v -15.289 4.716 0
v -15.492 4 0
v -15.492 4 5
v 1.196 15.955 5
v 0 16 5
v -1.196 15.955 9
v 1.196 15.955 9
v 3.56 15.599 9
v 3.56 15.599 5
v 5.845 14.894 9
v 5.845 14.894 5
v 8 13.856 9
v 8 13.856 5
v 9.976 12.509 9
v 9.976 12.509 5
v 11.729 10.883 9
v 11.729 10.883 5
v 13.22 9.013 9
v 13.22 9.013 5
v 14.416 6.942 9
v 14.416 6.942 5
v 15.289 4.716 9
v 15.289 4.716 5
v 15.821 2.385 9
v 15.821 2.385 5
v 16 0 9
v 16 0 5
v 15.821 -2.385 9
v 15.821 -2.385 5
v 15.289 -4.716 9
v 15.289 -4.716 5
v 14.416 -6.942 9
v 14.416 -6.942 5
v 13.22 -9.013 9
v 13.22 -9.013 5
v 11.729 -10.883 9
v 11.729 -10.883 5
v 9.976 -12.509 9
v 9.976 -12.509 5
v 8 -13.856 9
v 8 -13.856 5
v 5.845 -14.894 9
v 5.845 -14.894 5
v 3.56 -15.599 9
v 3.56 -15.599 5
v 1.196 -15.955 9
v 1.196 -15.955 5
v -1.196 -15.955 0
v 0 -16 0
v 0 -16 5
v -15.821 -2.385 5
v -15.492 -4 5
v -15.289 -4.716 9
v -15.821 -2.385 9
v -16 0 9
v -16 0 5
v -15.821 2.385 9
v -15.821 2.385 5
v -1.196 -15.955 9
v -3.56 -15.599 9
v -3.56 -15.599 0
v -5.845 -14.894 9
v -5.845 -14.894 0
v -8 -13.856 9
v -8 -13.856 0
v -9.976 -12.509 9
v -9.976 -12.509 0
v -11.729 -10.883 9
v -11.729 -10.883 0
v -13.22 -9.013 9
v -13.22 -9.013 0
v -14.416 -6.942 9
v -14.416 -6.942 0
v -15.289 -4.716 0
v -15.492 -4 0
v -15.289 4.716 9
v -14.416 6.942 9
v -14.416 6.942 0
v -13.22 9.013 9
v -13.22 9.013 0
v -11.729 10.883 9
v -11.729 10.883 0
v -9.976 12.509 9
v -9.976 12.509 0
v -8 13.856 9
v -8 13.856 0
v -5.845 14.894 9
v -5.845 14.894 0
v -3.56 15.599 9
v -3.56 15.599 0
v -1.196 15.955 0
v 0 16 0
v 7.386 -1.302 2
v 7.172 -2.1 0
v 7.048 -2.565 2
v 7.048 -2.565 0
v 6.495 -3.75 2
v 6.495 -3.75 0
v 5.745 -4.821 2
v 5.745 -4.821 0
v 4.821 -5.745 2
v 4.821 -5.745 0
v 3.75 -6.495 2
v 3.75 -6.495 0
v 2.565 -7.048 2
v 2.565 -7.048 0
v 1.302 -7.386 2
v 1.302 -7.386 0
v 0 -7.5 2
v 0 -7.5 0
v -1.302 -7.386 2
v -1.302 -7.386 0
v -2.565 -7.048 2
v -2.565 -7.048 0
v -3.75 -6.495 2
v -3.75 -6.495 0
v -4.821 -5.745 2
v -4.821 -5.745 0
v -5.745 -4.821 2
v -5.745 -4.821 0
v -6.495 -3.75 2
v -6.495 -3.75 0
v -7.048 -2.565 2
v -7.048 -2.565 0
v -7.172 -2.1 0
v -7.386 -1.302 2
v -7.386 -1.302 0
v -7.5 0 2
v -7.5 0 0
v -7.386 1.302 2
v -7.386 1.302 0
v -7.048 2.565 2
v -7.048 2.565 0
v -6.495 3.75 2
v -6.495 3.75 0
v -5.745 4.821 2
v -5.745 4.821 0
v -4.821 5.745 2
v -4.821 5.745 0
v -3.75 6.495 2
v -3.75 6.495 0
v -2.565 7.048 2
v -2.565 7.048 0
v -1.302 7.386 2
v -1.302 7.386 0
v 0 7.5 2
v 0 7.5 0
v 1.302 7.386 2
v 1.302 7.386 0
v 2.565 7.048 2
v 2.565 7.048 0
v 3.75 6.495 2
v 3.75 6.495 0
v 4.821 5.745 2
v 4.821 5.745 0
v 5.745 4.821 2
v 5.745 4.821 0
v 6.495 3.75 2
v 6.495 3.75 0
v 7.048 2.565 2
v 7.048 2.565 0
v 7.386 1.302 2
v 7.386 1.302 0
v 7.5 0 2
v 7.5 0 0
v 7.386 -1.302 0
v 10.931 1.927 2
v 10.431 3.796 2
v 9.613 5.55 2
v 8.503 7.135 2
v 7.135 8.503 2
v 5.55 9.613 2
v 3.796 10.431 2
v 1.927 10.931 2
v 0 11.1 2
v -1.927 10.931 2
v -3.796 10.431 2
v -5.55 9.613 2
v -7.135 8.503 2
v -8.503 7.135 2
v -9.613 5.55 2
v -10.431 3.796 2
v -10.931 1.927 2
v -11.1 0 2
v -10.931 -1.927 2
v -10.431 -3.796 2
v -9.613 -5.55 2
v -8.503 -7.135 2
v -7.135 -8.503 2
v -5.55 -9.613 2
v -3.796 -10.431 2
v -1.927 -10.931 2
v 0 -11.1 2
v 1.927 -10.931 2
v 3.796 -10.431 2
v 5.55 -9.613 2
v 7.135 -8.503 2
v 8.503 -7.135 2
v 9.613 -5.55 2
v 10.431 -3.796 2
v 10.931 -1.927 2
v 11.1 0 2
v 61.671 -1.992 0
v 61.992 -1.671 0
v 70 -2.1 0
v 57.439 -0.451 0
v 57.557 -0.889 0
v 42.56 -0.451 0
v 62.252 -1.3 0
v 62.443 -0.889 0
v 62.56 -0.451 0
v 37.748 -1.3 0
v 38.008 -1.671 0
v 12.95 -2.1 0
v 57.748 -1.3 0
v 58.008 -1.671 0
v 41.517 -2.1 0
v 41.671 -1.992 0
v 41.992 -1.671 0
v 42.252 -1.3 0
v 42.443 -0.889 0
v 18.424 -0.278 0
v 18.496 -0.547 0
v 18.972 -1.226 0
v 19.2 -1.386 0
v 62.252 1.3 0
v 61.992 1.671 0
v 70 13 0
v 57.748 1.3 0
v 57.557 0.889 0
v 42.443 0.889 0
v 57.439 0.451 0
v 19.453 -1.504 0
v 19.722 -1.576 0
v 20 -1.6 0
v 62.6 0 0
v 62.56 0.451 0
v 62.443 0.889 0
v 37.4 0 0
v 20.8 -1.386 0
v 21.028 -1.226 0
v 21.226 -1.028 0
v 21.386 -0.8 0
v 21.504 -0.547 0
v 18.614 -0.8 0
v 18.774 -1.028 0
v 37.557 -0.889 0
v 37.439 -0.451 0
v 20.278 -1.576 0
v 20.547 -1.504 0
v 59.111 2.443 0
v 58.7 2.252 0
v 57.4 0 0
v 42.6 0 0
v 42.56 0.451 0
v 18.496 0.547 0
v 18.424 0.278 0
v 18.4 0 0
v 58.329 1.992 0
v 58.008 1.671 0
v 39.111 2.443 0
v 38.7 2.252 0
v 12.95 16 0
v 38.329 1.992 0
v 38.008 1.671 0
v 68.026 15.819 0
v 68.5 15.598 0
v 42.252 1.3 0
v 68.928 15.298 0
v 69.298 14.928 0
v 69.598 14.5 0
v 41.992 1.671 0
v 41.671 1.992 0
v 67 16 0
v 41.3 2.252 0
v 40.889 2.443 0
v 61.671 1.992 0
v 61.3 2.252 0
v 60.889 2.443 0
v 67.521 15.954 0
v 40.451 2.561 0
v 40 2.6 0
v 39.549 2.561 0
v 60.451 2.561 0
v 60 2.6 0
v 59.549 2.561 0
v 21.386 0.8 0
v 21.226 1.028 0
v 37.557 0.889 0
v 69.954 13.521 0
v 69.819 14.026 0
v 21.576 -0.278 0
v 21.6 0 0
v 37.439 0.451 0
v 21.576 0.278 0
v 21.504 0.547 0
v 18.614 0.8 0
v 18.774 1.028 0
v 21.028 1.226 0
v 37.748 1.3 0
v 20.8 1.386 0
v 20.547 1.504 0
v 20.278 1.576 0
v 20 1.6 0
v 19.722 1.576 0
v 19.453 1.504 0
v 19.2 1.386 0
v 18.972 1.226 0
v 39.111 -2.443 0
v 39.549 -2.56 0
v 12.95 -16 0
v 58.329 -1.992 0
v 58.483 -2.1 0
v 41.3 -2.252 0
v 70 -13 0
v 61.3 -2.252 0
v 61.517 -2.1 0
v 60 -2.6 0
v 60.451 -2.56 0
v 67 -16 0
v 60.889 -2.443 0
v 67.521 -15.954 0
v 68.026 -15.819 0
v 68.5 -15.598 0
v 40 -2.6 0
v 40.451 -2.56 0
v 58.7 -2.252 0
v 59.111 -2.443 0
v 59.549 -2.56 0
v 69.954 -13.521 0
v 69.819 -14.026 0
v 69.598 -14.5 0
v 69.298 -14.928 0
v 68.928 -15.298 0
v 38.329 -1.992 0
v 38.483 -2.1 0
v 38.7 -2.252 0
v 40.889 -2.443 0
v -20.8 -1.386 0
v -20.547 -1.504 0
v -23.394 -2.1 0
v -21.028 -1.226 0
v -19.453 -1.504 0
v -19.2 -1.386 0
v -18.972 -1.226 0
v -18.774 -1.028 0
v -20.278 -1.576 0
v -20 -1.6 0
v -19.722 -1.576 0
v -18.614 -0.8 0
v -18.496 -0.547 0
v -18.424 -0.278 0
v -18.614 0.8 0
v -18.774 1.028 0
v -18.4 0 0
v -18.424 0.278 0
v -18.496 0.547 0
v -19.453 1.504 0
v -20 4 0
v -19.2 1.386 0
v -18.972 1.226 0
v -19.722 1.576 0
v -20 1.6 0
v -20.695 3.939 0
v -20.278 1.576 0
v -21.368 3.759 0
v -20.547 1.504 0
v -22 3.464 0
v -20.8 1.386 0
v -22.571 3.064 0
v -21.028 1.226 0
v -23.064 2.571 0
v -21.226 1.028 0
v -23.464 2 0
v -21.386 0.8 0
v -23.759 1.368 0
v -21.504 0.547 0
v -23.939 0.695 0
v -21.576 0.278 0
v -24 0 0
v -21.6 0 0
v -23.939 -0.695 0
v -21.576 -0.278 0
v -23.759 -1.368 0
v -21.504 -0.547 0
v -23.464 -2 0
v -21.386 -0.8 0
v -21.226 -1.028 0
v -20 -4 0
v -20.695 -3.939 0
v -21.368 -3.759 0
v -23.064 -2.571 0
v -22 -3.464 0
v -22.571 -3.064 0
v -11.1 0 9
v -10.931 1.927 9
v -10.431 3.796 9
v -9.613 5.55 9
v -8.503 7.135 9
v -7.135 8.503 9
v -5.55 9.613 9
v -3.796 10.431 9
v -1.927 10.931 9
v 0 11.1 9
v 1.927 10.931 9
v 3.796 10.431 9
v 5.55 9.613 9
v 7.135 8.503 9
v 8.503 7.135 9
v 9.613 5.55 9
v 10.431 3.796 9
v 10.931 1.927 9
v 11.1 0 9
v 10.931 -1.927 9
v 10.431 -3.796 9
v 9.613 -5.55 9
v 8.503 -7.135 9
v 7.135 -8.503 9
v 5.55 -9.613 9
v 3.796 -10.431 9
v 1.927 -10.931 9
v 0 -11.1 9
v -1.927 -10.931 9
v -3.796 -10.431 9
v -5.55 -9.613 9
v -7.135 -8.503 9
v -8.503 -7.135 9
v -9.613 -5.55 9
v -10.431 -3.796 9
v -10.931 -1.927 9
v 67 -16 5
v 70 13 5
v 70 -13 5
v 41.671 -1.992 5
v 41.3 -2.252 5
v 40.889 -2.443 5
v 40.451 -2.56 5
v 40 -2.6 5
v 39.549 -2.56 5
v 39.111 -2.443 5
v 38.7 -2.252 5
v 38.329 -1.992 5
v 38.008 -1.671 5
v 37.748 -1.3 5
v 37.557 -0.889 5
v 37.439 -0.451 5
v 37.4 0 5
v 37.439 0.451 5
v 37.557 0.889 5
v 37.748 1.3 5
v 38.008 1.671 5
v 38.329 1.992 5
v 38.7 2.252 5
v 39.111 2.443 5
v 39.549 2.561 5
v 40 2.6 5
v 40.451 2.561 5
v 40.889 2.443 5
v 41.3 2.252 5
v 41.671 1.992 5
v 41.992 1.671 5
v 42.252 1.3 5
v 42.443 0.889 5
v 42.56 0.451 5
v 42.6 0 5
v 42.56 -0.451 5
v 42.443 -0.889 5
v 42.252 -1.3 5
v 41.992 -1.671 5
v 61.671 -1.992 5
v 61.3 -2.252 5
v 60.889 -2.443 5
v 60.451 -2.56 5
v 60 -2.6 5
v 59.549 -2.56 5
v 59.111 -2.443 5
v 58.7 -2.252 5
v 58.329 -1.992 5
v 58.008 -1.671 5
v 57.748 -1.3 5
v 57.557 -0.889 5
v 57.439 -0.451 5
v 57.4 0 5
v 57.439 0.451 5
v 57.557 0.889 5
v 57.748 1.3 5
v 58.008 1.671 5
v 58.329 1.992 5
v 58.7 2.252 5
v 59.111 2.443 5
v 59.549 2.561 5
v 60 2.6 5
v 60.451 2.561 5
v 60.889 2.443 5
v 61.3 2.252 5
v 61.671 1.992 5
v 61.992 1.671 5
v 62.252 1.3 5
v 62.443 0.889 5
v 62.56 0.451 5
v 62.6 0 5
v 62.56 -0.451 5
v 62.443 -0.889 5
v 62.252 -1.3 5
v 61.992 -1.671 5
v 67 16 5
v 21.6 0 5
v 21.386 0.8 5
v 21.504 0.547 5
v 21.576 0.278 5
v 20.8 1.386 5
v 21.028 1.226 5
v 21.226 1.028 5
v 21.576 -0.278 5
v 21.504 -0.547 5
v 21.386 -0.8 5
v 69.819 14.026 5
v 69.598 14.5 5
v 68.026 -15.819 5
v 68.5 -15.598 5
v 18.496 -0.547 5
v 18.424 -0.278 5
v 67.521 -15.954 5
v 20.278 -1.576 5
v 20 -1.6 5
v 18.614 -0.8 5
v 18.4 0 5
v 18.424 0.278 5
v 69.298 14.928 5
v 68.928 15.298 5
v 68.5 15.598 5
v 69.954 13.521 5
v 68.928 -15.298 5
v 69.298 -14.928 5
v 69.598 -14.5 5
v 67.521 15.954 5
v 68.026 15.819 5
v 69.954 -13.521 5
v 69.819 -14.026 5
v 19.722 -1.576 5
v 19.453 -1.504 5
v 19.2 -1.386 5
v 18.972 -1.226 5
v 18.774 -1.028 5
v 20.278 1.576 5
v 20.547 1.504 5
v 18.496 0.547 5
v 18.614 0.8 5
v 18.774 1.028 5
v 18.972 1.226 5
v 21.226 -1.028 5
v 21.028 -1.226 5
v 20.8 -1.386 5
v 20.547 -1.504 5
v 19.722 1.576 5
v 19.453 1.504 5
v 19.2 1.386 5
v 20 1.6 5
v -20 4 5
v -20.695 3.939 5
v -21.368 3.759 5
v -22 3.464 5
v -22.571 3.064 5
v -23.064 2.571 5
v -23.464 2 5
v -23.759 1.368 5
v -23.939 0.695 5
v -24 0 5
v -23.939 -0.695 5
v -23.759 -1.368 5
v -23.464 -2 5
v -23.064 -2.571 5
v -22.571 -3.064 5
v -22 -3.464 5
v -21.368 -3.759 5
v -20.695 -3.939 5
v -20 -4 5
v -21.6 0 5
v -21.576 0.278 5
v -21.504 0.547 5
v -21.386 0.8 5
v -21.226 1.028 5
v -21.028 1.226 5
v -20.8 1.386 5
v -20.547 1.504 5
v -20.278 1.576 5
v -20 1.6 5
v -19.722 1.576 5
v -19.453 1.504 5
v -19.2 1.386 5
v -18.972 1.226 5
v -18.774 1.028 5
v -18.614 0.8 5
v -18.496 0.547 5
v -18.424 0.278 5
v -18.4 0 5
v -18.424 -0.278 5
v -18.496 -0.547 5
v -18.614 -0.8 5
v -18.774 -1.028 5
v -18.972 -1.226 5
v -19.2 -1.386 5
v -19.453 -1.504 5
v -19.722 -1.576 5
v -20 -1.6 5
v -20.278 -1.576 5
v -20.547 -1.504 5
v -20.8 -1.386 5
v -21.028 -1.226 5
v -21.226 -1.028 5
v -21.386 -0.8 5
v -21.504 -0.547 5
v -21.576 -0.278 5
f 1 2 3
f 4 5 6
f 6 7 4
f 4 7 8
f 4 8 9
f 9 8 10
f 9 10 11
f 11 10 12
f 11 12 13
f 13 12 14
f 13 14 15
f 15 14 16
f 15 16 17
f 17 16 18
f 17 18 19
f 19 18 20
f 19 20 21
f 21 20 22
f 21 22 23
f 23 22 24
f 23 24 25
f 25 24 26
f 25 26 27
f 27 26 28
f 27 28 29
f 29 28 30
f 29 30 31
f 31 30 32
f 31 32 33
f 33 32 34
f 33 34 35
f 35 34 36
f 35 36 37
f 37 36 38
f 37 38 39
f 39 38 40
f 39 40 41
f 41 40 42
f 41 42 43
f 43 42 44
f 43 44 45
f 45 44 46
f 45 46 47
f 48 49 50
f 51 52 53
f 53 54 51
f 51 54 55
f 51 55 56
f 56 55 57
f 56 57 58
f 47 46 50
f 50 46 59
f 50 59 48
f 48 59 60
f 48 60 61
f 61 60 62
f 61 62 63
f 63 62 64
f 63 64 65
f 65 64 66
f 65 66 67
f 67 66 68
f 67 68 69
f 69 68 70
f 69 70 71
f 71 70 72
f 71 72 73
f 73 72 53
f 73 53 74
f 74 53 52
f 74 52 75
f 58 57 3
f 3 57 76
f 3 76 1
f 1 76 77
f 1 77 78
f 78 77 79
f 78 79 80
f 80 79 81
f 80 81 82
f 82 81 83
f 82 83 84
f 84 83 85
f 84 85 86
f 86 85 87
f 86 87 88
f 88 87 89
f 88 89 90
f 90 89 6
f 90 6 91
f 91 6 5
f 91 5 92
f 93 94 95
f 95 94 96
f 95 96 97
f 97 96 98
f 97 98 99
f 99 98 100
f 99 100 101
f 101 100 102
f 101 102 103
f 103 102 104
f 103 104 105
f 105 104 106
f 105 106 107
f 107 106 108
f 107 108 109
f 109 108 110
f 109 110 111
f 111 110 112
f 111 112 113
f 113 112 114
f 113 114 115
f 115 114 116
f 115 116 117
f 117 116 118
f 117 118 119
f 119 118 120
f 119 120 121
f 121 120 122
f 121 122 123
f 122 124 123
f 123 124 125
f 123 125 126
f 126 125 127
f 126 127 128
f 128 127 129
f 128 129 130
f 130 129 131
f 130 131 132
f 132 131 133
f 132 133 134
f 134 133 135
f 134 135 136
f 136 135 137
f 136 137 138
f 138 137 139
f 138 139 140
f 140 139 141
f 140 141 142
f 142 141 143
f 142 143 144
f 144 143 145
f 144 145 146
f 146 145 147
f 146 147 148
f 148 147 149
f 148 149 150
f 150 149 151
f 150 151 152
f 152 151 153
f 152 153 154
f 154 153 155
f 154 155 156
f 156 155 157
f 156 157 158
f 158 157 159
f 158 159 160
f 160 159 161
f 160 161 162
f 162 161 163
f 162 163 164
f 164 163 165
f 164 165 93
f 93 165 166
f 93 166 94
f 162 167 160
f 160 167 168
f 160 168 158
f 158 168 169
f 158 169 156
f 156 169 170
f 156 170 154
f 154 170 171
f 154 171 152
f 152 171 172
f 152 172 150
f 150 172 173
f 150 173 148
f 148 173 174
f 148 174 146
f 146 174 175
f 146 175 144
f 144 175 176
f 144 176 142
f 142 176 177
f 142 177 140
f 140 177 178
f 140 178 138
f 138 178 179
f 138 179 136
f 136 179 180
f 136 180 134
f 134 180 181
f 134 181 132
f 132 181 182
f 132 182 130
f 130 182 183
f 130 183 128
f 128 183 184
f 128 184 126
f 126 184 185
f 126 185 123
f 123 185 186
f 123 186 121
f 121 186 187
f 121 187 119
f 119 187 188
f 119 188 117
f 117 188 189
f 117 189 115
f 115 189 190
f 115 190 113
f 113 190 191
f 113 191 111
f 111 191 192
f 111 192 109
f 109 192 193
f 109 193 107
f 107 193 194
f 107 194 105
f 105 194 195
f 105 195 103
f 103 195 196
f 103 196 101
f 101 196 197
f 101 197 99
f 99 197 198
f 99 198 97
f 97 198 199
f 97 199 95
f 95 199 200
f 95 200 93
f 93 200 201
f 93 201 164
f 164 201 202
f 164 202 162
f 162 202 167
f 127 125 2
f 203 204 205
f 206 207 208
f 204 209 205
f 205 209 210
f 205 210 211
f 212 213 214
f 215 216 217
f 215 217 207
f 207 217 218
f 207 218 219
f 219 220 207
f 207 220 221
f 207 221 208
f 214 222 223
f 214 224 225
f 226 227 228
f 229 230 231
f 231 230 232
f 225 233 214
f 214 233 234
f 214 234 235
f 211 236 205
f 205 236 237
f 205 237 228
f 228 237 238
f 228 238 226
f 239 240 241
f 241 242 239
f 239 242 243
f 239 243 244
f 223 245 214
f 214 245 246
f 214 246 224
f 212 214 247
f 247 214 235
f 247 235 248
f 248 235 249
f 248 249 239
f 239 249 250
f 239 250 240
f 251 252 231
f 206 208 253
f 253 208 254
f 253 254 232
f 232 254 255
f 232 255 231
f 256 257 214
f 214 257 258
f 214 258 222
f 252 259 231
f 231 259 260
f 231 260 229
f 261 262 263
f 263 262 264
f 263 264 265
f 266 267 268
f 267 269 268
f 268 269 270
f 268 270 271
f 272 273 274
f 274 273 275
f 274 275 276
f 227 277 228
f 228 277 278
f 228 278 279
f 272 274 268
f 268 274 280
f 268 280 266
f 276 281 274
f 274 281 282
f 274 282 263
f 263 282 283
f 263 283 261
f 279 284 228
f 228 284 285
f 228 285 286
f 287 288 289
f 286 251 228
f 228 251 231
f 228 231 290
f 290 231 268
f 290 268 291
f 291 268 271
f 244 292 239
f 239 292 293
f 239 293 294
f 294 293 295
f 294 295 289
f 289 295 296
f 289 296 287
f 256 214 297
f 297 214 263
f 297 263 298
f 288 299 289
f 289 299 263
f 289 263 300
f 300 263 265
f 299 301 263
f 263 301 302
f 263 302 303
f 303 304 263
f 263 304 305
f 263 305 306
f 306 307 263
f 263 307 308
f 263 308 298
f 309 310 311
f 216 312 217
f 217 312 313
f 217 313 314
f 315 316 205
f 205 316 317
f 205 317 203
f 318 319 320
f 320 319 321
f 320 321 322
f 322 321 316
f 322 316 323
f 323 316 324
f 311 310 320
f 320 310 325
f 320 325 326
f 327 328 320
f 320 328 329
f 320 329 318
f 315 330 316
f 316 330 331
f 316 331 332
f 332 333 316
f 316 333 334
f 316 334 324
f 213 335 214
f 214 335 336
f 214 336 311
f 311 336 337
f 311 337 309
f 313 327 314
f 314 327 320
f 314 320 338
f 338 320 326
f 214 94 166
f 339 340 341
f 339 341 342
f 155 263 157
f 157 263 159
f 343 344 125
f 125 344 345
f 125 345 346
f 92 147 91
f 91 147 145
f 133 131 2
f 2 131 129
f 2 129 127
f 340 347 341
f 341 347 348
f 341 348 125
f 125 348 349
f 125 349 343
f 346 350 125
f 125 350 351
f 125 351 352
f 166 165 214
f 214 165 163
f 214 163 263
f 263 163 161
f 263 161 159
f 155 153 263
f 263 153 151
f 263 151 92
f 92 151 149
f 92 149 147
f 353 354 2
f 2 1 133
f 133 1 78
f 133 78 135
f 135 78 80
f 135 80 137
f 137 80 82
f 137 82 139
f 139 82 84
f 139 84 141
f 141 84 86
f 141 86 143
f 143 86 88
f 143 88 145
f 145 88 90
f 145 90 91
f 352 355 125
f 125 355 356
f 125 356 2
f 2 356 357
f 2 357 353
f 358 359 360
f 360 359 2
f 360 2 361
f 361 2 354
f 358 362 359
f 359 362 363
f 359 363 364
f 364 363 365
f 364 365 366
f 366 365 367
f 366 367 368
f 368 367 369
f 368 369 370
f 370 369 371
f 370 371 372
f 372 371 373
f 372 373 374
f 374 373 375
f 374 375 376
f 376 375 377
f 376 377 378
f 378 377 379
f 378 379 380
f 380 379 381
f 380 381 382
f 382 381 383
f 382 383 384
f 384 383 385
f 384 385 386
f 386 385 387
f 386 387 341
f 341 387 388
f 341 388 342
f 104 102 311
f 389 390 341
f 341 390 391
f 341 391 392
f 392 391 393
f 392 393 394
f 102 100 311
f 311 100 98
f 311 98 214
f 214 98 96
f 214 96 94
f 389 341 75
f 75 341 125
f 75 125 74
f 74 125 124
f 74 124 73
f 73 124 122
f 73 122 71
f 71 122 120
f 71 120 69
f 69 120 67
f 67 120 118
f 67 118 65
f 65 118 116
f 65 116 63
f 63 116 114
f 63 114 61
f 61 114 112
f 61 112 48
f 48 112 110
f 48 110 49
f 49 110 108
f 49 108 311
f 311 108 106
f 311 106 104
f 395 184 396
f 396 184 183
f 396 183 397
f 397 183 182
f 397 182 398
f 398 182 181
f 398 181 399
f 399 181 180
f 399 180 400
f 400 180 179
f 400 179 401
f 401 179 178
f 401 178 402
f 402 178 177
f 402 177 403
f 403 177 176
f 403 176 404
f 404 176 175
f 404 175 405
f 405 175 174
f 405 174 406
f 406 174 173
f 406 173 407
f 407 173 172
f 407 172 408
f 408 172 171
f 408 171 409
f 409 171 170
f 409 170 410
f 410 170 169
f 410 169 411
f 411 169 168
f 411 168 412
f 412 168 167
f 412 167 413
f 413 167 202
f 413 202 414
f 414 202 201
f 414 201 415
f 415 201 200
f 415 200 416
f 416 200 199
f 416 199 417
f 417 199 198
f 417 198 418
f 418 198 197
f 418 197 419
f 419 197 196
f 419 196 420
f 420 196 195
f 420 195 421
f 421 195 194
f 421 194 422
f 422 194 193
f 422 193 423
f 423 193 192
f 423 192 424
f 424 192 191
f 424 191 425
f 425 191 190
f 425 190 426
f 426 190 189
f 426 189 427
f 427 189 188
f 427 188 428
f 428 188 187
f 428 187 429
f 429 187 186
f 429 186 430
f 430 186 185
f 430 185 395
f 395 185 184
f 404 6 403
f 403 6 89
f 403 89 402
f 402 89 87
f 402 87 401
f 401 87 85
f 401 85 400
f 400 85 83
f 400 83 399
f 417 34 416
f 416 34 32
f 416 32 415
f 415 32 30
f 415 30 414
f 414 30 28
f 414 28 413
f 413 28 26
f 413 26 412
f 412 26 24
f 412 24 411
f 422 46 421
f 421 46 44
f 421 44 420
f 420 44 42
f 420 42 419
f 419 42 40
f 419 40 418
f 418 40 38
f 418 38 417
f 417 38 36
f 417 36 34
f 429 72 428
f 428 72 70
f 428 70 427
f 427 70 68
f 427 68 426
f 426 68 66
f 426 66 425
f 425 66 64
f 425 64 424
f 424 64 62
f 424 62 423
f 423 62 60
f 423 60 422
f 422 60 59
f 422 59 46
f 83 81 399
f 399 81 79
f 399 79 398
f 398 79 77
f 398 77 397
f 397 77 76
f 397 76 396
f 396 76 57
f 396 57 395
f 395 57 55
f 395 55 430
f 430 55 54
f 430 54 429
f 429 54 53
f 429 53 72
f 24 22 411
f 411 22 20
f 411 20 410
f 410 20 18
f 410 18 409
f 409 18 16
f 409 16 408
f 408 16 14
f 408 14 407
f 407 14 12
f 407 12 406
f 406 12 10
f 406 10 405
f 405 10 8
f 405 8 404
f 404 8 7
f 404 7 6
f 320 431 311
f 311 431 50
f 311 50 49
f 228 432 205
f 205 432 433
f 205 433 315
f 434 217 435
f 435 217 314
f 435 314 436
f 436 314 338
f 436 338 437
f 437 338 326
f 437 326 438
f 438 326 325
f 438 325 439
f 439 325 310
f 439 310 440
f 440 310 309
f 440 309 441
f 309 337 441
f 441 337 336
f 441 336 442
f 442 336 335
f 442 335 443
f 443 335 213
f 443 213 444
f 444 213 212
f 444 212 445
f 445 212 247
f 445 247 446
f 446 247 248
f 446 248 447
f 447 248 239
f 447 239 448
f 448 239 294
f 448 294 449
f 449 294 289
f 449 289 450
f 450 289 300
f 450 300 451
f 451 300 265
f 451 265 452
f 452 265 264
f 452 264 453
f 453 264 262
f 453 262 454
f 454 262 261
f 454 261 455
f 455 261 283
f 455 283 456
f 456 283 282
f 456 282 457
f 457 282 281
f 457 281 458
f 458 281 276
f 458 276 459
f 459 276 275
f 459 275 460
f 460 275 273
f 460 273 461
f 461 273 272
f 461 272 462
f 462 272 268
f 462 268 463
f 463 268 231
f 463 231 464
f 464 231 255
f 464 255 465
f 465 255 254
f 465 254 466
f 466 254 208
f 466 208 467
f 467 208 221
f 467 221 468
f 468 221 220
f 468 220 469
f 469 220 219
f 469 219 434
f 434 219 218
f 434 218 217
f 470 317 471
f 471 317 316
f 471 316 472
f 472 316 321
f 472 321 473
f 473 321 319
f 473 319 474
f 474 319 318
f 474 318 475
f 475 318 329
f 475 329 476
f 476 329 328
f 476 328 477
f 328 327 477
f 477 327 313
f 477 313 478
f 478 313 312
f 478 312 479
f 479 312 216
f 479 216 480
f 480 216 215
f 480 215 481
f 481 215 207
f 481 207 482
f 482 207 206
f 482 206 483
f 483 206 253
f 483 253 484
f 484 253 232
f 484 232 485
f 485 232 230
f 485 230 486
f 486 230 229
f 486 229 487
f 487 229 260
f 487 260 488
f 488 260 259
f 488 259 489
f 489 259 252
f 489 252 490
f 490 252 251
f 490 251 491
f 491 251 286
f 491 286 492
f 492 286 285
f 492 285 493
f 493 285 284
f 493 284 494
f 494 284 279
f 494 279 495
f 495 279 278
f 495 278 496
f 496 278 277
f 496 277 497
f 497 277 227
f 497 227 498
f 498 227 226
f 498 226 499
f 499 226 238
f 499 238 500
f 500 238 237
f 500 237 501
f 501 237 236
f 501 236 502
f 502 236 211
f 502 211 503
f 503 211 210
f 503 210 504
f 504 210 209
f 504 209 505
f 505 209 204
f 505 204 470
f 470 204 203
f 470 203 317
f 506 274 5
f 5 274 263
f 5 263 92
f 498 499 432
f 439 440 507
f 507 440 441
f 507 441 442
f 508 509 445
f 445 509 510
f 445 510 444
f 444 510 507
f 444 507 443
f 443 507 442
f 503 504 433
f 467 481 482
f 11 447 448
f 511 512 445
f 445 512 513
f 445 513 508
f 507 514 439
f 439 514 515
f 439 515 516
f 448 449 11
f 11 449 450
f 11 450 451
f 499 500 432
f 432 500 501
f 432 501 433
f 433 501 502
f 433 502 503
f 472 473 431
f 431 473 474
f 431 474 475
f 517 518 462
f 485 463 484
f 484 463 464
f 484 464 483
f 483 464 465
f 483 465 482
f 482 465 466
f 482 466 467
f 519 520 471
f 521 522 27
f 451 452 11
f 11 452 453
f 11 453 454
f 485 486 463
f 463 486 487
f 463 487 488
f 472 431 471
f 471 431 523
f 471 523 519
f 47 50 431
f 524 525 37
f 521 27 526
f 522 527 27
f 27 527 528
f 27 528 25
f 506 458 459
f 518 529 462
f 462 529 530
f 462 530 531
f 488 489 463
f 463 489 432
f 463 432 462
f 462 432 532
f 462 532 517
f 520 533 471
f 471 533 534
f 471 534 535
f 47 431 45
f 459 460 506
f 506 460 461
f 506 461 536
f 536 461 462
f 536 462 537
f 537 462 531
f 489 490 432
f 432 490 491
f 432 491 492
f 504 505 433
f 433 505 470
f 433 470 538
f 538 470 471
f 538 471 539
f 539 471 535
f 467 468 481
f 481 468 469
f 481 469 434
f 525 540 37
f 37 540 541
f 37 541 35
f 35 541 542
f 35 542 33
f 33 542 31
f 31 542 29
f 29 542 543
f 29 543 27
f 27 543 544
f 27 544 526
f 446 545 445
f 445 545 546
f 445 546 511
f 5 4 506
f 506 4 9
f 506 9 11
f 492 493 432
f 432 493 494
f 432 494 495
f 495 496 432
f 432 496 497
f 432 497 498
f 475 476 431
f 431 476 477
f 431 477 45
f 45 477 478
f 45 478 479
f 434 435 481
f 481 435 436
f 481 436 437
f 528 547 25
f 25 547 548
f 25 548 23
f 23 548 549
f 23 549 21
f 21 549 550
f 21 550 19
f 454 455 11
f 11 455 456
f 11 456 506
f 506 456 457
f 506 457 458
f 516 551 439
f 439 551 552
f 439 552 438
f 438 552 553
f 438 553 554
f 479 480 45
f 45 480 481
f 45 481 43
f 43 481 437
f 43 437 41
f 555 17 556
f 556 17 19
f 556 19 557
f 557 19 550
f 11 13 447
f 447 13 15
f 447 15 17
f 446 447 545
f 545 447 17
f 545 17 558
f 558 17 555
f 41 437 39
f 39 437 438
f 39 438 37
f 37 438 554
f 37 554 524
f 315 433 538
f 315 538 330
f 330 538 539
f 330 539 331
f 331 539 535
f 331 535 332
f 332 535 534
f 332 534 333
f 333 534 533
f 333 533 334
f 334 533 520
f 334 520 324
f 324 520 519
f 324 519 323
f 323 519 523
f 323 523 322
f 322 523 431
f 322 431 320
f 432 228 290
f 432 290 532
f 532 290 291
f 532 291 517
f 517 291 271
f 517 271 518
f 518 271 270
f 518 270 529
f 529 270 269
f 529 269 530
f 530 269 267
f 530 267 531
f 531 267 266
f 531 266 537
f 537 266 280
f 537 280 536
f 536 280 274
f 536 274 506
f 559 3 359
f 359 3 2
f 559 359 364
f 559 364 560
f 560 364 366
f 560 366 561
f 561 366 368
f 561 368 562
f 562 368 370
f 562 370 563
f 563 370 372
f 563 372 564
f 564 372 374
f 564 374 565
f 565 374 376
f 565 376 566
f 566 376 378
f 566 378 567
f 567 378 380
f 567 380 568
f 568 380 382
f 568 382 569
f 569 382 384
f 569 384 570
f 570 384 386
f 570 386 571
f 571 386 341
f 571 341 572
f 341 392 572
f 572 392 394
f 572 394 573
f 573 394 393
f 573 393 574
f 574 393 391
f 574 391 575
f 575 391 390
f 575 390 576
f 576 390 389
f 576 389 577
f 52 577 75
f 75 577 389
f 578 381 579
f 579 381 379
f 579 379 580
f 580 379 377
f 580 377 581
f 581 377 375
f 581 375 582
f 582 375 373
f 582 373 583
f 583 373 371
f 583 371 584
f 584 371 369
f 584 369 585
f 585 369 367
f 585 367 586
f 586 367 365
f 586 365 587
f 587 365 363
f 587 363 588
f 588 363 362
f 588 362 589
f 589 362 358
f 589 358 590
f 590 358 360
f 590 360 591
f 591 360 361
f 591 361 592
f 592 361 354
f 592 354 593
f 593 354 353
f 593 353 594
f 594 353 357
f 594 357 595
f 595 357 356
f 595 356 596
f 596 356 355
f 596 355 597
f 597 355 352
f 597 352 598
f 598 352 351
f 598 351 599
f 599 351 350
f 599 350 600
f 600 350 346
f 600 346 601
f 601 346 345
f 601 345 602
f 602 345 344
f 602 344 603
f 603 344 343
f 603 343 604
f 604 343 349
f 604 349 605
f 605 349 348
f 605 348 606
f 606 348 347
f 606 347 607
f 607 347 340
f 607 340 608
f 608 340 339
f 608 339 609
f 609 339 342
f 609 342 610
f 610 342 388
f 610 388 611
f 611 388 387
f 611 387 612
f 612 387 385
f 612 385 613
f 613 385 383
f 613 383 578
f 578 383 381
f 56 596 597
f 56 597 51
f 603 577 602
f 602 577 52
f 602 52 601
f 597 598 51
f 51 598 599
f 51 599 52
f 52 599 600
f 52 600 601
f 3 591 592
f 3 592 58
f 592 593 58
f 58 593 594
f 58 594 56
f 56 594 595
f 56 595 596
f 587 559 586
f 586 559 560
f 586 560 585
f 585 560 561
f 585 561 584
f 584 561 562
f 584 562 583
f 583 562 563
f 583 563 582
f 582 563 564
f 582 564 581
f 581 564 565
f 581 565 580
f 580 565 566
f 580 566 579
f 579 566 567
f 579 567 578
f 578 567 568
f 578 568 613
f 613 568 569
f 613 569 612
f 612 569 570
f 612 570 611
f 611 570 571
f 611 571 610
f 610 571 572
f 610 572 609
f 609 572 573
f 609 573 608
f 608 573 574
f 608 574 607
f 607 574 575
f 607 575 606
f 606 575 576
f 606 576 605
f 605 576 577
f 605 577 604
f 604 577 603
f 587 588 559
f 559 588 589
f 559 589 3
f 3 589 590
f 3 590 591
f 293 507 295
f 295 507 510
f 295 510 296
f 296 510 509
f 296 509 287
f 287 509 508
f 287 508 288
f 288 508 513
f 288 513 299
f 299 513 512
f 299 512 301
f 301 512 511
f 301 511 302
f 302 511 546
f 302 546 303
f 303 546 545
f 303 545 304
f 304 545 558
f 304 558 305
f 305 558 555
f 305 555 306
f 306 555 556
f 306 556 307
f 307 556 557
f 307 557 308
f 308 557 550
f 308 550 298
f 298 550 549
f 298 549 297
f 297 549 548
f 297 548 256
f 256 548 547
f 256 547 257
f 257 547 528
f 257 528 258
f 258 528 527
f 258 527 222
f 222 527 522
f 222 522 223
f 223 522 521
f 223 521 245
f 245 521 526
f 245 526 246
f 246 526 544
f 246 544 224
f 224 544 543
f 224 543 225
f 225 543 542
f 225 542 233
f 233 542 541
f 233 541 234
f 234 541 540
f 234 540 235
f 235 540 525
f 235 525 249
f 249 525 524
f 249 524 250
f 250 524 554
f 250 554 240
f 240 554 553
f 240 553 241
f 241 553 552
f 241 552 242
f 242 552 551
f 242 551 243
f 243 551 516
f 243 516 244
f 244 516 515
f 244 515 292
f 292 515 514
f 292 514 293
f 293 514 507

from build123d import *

# Parameters (mm, degrees)
SKETCH3_R           = 7.5
BOSS_EXTRUDE3_DEPTH = 2
SKETCH2_R           = 16
SKETCH2_R_2         = 11.1
BOSS_EXTRUDE4_DEPTH = 9
SKETCH4_R           = 2.6
BOSS_EXTRUDE5_DEPTH = 5
FILLET3_R           = 3
SKETCH5_R           = 1.6
BOSS_EXTRUDE6_DEPTH = 5
SKETCH6_R           = 1.6
CUT_EXTRUDE1_DEPTH  = 10


with BuildPart() as part:
    # Sketch3 → Boss-Extrude3 (new body)
    with BuildSketch(Plane.XY):
        with BuildLine():
            Line((-15.491933385, 4), (-15.491933385, -4))
            ThreePointArc((-15.491933385, -4), (16, 0), (-15.491933385, 4))
        make_face()
        Circle(SKETCH3_R, mode=Mode.SUBTRACT)
    extrude(amount=BOSS_EXTRUDE3_DEPTH)

    # Sketch2 → Boss-Extrude4 (add)
    with BuildSketch(Plane.XY):
        Circle(SKETCH2_R)
        Circle(SKETCH2_R_2, mode=Mode.SUBTRACT)
    extrude(amount=BOSS_EXTRUDE4_DEPTH)

    # Sketch4 → Boss-Extrude5 (add)
    with BuildSketch(Plane.XY):
        with BuildLine():
            Line((70, 16), (30, 16))
            Line((30, 16), (0, 16))
            ThreePointArc((0, 16), (11.313708499, 11.313708499), (16, 0))
            ThreePointArc((16, 0), (11.313708499, -11.313708499), (0, -16))
            Line((0, -16), (70, -16))
            Line((70, -16), (70, 16))
        make_face()
        with Locations((40, 0)):
            Circle(SKETCH4_R, mode=Mode.SUBTRACT)
        with Locations((60, 0)):
            Circle(SKETCH4_R, mode=Mode.SUBTRACT)
    extrude(amount=BOSS_EXTRUDE5_DEPTH)

    # Fillet3
    fillet3_edges = [part.edges().sort_by_distance(p)[0] for p in [
        (70, -16, 2.5),
        (70, 16, 2.5),
    ]]
    fillet(fillet3_edges, radius=FILLET3_R)

    # Sketch5 → Boss-Extrude6 (add)
    with BuildSketch(Plane.XY):
        with BuildLine():
            Line((-20, 4), (-15.491933385, 4))
            Line((-15.491933385, 4), (-15.491933385, -4))
            Line((-15.491933385, -4), (-20, -4))
            ThreePointArc((-20, -4), (-24, 0), (-20, 4))
        make_face()
        with Locations((-20, 0)):
            Circle(SKETCH5_R, mode=Mode.SUBTRACT)
    extrude(amount=BOSS_EXTRUDE6_DEPTH)

    # Sketch6 → Cut-Extrude1 (cut)
    with BuildSketch(Plane.XY.offset(5)):
        with Locations((20, 0)):
            Circle(SKETCH6_R)
    extrude(amount=-CUT_EXTRUDE1_DEPTH, mode=Mode.SUBTRACT)


solid = part.part
